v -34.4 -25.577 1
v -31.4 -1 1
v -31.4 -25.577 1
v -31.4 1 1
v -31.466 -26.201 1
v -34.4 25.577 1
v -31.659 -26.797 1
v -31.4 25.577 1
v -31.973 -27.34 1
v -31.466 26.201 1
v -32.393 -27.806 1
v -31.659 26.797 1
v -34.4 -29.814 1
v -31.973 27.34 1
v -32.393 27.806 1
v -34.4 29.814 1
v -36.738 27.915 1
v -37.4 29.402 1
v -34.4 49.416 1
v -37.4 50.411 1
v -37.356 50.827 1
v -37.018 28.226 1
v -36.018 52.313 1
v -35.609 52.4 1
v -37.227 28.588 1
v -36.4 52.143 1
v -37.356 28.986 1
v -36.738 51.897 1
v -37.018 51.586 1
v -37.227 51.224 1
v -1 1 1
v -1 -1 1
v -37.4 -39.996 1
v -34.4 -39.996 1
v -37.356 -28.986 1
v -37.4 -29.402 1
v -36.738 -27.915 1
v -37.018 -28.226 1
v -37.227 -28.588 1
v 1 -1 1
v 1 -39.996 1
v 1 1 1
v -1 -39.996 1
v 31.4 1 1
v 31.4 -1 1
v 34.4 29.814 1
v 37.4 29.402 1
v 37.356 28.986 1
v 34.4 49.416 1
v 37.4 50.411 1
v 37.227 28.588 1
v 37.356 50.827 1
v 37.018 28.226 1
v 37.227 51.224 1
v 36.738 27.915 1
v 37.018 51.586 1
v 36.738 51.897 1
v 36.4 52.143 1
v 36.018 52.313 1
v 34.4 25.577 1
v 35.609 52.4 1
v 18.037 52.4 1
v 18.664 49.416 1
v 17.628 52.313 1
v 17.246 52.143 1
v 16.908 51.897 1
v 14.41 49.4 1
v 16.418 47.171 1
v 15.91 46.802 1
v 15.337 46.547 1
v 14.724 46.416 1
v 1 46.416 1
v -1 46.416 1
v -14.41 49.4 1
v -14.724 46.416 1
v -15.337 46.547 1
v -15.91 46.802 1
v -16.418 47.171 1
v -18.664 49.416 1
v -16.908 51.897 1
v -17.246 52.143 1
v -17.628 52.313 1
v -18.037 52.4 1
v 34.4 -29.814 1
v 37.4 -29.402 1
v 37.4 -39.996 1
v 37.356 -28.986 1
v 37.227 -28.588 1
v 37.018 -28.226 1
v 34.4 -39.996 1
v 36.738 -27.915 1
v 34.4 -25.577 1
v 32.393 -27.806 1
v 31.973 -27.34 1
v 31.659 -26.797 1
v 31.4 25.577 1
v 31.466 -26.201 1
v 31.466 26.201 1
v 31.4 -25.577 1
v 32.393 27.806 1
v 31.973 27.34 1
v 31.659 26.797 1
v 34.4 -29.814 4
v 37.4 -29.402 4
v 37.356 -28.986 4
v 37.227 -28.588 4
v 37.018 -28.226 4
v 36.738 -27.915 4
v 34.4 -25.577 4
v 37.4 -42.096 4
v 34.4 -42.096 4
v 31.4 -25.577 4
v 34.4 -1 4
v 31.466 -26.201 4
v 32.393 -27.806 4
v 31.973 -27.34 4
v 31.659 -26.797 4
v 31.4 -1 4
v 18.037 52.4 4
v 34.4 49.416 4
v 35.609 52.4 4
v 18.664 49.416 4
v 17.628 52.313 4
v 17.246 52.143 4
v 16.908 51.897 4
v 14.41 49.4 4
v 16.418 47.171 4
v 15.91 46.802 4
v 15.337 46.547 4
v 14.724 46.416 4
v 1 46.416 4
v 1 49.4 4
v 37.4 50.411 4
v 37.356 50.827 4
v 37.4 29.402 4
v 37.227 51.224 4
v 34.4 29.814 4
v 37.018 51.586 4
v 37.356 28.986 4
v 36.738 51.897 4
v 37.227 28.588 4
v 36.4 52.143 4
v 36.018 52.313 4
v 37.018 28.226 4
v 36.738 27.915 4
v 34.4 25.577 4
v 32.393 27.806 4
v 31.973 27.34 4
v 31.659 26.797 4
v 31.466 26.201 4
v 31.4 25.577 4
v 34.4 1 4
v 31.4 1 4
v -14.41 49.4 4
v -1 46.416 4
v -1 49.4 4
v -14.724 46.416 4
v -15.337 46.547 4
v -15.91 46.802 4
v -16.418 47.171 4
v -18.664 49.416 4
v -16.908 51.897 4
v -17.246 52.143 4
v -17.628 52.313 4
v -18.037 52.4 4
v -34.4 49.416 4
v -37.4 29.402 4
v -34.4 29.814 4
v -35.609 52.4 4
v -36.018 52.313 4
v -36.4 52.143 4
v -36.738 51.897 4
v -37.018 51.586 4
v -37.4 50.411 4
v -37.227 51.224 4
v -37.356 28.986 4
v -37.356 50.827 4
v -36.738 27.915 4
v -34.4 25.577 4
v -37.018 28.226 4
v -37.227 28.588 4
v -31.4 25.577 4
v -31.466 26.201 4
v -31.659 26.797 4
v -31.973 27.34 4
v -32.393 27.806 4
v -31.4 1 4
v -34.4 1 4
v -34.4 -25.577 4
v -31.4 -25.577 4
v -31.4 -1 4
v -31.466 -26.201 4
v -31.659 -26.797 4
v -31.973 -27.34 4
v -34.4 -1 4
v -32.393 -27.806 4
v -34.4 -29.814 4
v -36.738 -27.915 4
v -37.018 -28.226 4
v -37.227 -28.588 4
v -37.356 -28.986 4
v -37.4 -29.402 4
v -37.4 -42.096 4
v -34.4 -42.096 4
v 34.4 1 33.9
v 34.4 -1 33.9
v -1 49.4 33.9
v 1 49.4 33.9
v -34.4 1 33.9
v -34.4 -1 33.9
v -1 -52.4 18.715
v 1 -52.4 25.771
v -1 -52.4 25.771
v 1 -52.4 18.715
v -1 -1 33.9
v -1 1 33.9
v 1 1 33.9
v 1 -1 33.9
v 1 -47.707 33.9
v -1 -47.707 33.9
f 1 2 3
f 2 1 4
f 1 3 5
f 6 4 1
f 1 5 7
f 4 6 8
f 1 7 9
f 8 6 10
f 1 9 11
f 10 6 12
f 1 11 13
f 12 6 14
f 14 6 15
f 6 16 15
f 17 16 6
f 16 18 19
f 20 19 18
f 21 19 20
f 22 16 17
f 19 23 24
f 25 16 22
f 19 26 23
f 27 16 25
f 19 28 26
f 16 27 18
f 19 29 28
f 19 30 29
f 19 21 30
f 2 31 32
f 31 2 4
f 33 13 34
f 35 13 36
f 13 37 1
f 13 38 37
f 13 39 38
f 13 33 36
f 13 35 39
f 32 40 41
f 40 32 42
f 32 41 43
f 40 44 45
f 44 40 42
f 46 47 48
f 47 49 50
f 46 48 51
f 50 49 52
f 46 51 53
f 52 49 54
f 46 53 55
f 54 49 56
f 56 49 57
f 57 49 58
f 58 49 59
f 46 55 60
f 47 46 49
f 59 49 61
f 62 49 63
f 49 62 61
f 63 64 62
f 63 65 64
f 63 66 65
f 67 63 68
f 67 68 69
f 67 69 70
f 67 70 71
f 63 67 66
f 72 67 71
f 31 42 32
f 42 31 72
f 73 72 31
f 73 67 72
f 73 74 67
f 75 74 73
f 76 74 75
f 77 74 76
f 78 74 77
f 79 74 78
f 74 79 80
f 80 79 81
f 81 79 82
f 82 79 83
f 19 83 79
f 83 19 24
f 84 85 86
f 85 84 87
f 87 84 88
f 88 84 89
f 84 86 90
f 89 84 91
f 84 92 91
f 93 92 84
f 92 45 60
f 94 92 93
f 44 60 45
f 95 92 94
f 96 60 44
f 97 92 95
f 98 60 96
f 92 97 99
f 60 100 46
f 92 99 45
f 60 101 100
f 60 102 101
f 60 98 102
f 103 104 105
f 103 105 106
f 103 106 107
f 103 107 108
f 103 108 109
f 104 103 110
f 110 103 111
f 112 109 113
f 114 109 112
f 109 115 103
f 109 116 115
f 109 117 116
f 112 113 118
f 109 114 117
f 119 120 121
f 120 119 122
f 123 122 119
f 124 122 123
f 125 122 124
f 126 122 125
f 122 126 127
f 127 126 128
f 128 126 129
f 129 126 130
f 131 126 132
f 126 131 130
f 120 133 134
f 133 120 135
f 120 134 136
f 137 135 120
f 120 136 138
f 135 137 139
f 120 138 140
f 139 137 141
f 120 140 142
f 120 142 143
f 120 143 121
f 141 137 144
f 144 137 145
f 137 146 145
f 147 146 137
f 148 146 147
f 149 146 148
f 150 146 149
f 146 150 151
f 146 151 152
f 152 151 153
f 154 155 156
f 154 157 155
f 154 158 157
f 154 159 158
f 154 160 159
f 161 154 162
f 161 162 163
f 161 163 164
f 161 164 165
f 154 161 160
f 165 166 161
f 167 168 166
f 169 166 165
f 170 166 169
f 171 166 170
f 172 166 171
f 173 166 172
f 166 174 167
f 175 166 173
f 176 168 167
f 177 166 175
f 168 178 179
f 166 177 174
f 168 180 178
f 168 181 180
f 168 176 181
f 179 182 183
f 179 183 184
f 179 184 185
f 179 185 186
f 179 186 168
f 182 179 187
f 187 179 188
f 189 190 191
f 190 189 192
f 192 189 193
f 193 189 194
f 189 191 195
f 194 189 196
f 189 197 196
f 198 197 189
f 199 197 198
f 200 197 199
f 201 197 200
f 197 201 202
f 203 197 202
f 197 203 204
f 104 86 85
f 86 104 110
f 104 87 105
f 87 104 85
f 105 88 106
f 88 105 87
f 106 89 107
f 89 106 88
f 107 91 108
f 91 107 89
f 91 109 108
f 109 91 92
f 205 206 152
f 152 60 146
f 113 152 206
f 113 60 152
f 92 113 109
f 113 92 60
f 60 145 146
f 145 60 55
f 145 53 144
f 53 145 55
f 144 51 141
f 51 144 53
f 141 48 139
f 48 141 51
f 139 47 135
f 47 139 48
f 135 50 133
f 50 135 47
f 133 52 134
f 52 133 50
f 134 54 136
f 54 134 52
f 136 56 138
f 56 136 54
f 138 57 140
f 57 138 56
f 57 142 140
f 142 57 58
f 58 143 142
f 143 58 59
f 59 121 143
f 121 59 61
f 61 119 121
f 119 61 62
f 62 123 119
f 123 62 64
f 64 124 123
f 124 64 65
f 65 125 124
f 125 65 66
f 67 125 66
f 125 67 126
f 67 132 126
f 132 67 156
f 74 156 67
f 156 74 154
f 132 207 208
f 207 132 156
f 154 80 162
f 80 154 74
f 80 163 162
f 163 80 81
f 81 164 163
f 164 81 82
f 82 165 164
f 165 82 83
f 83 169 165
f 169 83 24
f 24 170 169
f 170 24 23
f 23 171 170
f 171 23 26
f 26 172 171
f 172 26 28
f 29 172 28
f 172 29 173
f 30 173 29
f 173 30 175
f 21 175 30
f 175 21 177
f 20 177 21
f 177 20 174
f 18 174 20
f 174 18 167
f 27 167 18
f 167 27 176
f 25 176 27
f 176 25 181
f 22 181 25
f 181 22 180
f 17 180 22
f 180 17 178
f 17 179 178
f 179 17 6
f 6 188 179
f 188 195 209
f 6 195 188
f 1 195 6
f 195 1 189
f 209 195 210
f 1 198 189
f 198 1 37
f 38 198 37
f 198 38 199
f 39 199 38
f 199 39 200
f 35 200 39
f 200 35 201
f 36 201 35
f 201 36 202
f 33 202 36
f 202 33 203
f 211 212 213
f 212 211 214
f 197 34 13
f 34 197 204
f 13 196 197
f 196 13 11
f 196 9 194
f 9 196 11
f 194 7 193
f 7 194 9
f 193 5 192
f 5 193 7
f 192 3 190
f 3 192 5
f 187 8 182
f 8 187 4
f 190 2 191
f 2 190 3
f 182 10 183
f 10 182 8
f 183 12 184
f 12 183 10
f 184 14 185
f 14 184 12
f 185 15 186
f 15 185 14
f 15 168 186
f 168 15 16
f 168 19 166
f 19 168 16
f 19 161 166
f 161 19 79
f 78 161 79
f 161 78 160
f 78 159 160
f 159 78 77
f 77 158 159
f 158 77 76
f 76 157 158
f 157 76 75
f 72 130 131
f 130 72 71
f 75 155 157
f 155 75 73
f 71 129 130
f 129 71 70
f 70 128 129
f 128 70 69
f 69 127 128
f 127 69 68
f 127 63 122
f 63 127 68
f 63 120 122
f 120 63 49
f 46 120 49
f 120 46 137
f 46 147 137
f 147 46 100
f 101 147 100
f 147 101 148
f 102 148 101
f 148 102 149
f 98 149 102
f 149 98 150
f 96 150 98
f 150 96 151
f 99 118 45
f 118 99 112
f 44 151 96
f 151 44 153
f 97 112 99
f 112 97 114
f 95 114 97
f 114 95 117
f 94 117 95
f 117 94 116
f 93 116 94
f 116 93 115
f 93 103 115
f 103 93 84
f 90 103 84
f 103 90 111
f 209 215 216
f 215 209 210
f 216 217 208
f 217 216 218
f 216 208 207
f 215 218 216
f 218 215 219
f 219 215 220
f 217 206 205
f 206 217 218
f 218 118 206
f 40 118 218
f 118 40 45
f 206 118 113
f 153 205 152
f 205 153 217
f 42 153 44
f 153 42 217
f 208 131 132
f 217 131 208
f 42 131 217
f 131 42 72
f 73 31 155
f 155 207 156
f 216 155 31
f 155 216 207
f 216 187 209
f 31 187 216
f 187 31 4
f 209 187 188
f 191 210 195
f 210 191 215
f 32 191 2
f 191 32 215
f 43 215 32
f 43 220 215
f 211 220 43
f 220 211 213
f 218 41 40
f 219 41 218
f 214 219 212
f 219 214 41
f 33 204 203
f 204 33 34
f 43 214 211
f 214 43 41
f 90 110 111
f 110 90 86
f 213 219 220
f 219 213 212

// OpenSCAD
// file: scad-utils/morphology.scad
// Copyright (c) 2013 Oskar Linde. All rights reserved.
// License: BSD
//
// This library contains basic 2D morphology operations
//
// outset(d=1)            - creates a polygon at an offset d outside a 2D shape
// inset(d=1)             - creates a polygon at an offset d inside a 2D shape
// fillet(r=1)            - adds fillets of radius r to all concave corners of a 2D shape
// rounding(r=1)          - adds rounding to all convex corners of a 2D shape
// shell(d,center=false)  - makes a shell of width d along the edge of a 2D shape
//                        - positive values of d places the shell on the outside
//                        - negative values of d places the shell on the inside
//                        - center=true and positive d places the shell centered on the edge

module outset(d=1) {
	// Bug workaround for older OpenSCAD versions
	if (version_num() < 20130424) render() outset_extruded(d) children();
	else minkowski() {
		circle(r=d);
		children();
	}
}

module outset_extruded(d=1) {
   projection(cut=true) minkowski() {
        cylinder(r=d);
        linear_extrude(center=true) children();
   }
}

module inset(d=1) {
	 render() inverse() outset(d=d) inverse() children();
}

module fillet(r=1) {
	inset(d=r) render() outset(d=r) children();
}

module rounding(r=1) {
	outset(d=r) inset(d=r) children();
}

module shell(d,center=false) {
	if (center && d > 0) {
		difference() {
			outset(d=d/2) children();
			inset(d=d/2) children();
		}
	}
	if (!center && d > 0) {
		difference() {
			outset(d=d) children();
			children();
		}
	}
	if (!center && d < 0) {
		difference() {
			children();
			inset(d=-d) children();
		}
	}
	if (d == 0) children();
}


// Below are for internal use only

module inverse() {
	difference() {
		square(1e5,center=true);
		children();
	}
}


// TEST CODE

use <mirror.scad>

module arrow(l=1,w=.6,t=0.15) {
	mirror_y() polygon([[0,0],[l,0],[l-w/2,w/2],[l-w/2-sqrt(2)*t,w/2],[l-t/2-sqrt(2)*t,t/2],[0,t/2]]);
}

module shape() {
	polygon([[0,0],[1,0],[1.5,1],[2.5,1],[2,-1],[0,-1]]);
}

if(0) assign($fn=32) {

	for (p = [0:10*3-1]) assign(o=floor(p/3)) {
		translate([(p%3)*2.5,-o*3]) {
			//%if (p % 3 == 1) translate([0,0,1]) shape();
			if (p % 3 == 0) shape();
			if (p % 3 == 1) translate([0.6,0]) arrow();
			if (p % 3 == 2) {
				if (o == 0) inset(d=0.3) shape();
				if (o == 1) outset(d=0.3) shape();
				if (o == 2) rounding(r=0.3) shape();
				if (o == 3) fillet(r=0.3) shape();
				if (o == 4) shell(d=0.3) shape();
				if (o == 5) shell(d=-0.3) shape();
				if (o == 6) shell(d=0.3,center=true) shape();
				if (o == 7) rounding(r=0.3) fillet(r=0.3) shape();
				if (o == 8) shell(d=0.3,center=true) fillet(r=0.3) rounding(r=0.3) shape();
				if (o == 9) shell(d=-0.3) fillet(r=0.3) rounding(r=0.3) shape();
			}
		}
	}
}
// file: scad-utils/mirror.scad
// Copyright (c) 2013 Oskar Linde. All rights reserved.
// License: BSD
//
// This library contains simple mirroring functions
//
// mirror_x()
// mirror_y()
// mirror_z()


module mirror_x() {
  union() {
    child();
    scale([-1,1,1]) child();
  }
}

module mirror_y() {
  union() {
    child();
    scale([1,-1,1]) child();
  }
}

module mirror_z() {
  union() {
    child();
    scale([1,1,-1]) child();
  }
}
// file: parametric-stackable-box.scad
include <scad-utils/mirror.scad>
include <scad-utils/morphology.scad>

$fn=30;

/* Parameters */
BODY_X = 80;
BODY_Y = 110;
BODY_Z = 47;

module base(r=1) {
  basePoints = [
    [BODY_X/2, 0],
    [0, 0],
    [0, BODY_Y/4],
    [3, BODY_Y/4 + 3],
    [3, BODY_Y/4 * 3 - 3],
    [0, BODY_Y/4 * 3],
    [0, BODY_Y/4 * 4],
    [0 + BODY_X/3 - 3, BODY_Y/4 * 4],
    [0 + BODY_X/3, BODY_Y/4 * 4 - 3],
    [BODY_X/2, BODY_Y/4 * 4 - 3],
  ];

  pointsCentered = [for (p=basePoints)
    [
      p[0] - BODY_X/2,
      p[1] - BODY_Y/2
    ]
  ];

  points = concat(
    pointsCentered,
    [for (p=pointsCentered) [p[0]*-1, p[1]] ]
  );

  rounding(r=r)
  polygon(points=points);
}

/* Parameters 2 */
WALL_THICK = 0.4*4;

HOLDER_Z_TOTAL = 10;
HOLDER_Z_JOINT = 3;
HOLDER_Z = HOLDER_Z_TOTAL - HOLDER_Z_JOINT;
HOLDER_DELTA = 0.8+0.4*4;
HOLDER_CLEARANCE = 0.4*2;

FRONT_EDGE_DEG = 35;
FRONT_EDGE_LEN = 20;

FRONT_EDGE_TOP_DEG = 30;
FRONT_EDGE_TOP_LEN = 25;

module body() {
  difference() {
    union() {
      // inner
      linear_extrude(height=BODY_Z-HOLDER_Z_TOTAL, center=!true, convexity=10, twist=0)
      base();

      // joint
      translate([0, 0, BODY_Z-HOLDER_Z])
      minkowski() {
        hull() {
          linear_extrude(height=0.01, center=!true)
          rounding(r=2-0.01)
          square(size=[HOLDER_DELTA*2, HOLDER_DELTA*2], center=true);
          translate([0, 0, -HOLDER_Z_JOINT])
          sphere(r=0.01);
        }

        linear_extrude(
          height=0.01,
          center=!true,
          convexity=10
        )
        base();
      }

      // holder
      translate([0, 0, BODY_Z-HOLDER_Z])
      linear_extrude(height=HOLDER_Z, center=!true, convexity=10, twist=0)
      offset(r=HOLDER_DELTA)
      base();
    }

    // inner space
    difference() {
      translate([0, 0, 1])
      linear_extrude(height=BODY_Z, center=!true, convexity=10, twist=0)
      offset(r=-WALL_THICK)
      base();

      // frontEdge
      frontEdge();
    }

    // holder inner space
    translate([0, 0, BODY_Z-HOLDER_Z+1])
    linear_extrude(height=HOLDER_Z, center=!true, convexity=10, twist=0)
    offset(r=HOLDER_CLEARANCE)
    base();

    // front space
    translate([0, -BODY_Y/2, BODY_Z/2 + FRONT_EDGE_LEN + 1])
    cube(size=[BODY_X-WALL_THICK*2, 10, BODY_Z+1], center=true);

    // frontEdge
    translate([0, -1*sin(FRONT_EDGE_DEG), -1*cos(FRONT_EDGE_DEG)])
    frontEdge();

    // frontEdgeTop
    translate([0, -1*sin(FRONT_EDGE_TOP_DEG), -1*cos(FRONT_EDGE_TOP_DEG)])
    frontEdgeTop();
  }
}

module frontEdge(args) {
  translate([0, -BODY_Y/2, 0])
  rotate([FRONT_EDGE_DEG, 0, 0])
  cube(
    size=[
      BODY_X+10,
      FRONT_EDGE_LEN*2*sin(FRONT_EDGE_DEG),
      FRONT_EDGE_LEN*2*cos(FRONT_EDGE_DEG)
    ],
    center=true
  );
}

module frontEdgeTop() {
  translate([0, -BODY_Y/2, BODY_Z])
  rotate([180-FRONT_EDGE_TOP_DEG, 0, 0])
  cube(
    size=[
      BODY_X+10,
      FRONT_EDGE_TOP_LEN*2*sin(FRONT_EDGE_TOP_DEG),
      FRONT_EDGE_TOP_LEN*2*cos(FRONT_EDGE_TOP_DEG)
    ],
    center=true
  );
}

DRAW_BODY=true;
if (DRAW_BODY) {
  body();
}

/* Show dimentions */
module dimenText(text, len, pos=0) {
  module vert(t=0.5) {
    translate([0, len/2 - t/2, -3/2])
    rotate([90, 0, 90])
    square(size=[t, 3], center=true);
  }

  module dimen() {
    rotate([90, 0, 90])
    square(size=[len, 0.5], center=true);

    vert();
    mirror_y()
    vert();
  }

  textAligns = [
    "center",
    "left",
    "right",
    "center",
  ];
  textPositions = [
    [0, 0, 5],
    [0, 5, 0],
    [0, -5, 0],
    [0, 0, -10],
  ];
  dimenRotations = [
    [0, 0, 0],
    [-90, 0, 0],
    [90, 0, 0],
    [0, 180, 0],
  ];

  color("red") {
    translate(textPositions[pos])
    rotate([90, 0, 90])
    text(text, size=4, font="Sans", halign=textAligns[pos], valign="center",
    spacing=1.0, direction="ltr", language="en", script="latin", center=true);

    rotate(dimenRotations[pos])
    dimen();
  }
}

if (DRAW_BODY) {
  translate([0, 0, BODY_Z + 8])
  dimenText("BODY_Y", BODY_Y, 0);

  translate([0, BODY_Y/2 + 8, BODY_Z/2])
  dimenText("BODY_Z", BODY_Z, 1);

  translate([0, BODY_Y/2 + 8 + 8, HOLDER_Z_TOTAL/2 + BODY_Z - HOLDER_Z_TOTAL])
  dimenText("HOLDER_Z_TOTAL", HOLDER_Z_TOTAL, 1);

  translate([0, -BODY_Y/2 - 8, HOLDER_Z_JOINT/2 + BODY_Z - HOLDER_Z_TOTAL])
  dimenText("HOLDER_Z_JOINT", HOLDER_Z_JOINT, 2);

  translate([0, -BODY_Y/2, (FRONT_EDGE_LEN)*sin(FRONT_EDGE_DEG)/2])
  rotate([FRONT_EDGE_DEG, 0, 0])
  dimenText("FRONT_EDGE_LEN", FRONT_EDGE_LEN, 2);
}
// main file
include <parametric-stackable-box.scad>

$fn=30;

/* Parameters */
DRAW_BODY=false;
BODY_Z = 47;

ORG_CLEARANCE=1;
ORG_FRAME_Z=3;
ORG_WALL_T=0.4*5;
ORG_WALL_Z=BODY_Z*0.7;

module orgBase(args) {
  rounding(r=2)
  offset(delta=-WALL_THICK-ORG_CLEARANCE)
  base();
}

translate([0, 0, 1])
difference() {
  union() {
    linear_extrude(height=ORG_FRAME_Z, center=!true, convexity=10, twist=0)
    shell(d=-3)
    orgBase();

    // divider
    linear_extrude(height=ORG_WALL_Z, center=!true, convexity=10, twist=0)
    intersection() {
      union() {
        square(size=[BODY_X, ORG_WALL_T], center=true);
        square(size=[ORG_WALL_T, BODY_Y], center=true);
      }
      orgBase();
    }

  }

  translate([0, ORG_CLEARANCE, 0]){
    frontEdge();
    frontEdgeTop();
  }
}


%body();
